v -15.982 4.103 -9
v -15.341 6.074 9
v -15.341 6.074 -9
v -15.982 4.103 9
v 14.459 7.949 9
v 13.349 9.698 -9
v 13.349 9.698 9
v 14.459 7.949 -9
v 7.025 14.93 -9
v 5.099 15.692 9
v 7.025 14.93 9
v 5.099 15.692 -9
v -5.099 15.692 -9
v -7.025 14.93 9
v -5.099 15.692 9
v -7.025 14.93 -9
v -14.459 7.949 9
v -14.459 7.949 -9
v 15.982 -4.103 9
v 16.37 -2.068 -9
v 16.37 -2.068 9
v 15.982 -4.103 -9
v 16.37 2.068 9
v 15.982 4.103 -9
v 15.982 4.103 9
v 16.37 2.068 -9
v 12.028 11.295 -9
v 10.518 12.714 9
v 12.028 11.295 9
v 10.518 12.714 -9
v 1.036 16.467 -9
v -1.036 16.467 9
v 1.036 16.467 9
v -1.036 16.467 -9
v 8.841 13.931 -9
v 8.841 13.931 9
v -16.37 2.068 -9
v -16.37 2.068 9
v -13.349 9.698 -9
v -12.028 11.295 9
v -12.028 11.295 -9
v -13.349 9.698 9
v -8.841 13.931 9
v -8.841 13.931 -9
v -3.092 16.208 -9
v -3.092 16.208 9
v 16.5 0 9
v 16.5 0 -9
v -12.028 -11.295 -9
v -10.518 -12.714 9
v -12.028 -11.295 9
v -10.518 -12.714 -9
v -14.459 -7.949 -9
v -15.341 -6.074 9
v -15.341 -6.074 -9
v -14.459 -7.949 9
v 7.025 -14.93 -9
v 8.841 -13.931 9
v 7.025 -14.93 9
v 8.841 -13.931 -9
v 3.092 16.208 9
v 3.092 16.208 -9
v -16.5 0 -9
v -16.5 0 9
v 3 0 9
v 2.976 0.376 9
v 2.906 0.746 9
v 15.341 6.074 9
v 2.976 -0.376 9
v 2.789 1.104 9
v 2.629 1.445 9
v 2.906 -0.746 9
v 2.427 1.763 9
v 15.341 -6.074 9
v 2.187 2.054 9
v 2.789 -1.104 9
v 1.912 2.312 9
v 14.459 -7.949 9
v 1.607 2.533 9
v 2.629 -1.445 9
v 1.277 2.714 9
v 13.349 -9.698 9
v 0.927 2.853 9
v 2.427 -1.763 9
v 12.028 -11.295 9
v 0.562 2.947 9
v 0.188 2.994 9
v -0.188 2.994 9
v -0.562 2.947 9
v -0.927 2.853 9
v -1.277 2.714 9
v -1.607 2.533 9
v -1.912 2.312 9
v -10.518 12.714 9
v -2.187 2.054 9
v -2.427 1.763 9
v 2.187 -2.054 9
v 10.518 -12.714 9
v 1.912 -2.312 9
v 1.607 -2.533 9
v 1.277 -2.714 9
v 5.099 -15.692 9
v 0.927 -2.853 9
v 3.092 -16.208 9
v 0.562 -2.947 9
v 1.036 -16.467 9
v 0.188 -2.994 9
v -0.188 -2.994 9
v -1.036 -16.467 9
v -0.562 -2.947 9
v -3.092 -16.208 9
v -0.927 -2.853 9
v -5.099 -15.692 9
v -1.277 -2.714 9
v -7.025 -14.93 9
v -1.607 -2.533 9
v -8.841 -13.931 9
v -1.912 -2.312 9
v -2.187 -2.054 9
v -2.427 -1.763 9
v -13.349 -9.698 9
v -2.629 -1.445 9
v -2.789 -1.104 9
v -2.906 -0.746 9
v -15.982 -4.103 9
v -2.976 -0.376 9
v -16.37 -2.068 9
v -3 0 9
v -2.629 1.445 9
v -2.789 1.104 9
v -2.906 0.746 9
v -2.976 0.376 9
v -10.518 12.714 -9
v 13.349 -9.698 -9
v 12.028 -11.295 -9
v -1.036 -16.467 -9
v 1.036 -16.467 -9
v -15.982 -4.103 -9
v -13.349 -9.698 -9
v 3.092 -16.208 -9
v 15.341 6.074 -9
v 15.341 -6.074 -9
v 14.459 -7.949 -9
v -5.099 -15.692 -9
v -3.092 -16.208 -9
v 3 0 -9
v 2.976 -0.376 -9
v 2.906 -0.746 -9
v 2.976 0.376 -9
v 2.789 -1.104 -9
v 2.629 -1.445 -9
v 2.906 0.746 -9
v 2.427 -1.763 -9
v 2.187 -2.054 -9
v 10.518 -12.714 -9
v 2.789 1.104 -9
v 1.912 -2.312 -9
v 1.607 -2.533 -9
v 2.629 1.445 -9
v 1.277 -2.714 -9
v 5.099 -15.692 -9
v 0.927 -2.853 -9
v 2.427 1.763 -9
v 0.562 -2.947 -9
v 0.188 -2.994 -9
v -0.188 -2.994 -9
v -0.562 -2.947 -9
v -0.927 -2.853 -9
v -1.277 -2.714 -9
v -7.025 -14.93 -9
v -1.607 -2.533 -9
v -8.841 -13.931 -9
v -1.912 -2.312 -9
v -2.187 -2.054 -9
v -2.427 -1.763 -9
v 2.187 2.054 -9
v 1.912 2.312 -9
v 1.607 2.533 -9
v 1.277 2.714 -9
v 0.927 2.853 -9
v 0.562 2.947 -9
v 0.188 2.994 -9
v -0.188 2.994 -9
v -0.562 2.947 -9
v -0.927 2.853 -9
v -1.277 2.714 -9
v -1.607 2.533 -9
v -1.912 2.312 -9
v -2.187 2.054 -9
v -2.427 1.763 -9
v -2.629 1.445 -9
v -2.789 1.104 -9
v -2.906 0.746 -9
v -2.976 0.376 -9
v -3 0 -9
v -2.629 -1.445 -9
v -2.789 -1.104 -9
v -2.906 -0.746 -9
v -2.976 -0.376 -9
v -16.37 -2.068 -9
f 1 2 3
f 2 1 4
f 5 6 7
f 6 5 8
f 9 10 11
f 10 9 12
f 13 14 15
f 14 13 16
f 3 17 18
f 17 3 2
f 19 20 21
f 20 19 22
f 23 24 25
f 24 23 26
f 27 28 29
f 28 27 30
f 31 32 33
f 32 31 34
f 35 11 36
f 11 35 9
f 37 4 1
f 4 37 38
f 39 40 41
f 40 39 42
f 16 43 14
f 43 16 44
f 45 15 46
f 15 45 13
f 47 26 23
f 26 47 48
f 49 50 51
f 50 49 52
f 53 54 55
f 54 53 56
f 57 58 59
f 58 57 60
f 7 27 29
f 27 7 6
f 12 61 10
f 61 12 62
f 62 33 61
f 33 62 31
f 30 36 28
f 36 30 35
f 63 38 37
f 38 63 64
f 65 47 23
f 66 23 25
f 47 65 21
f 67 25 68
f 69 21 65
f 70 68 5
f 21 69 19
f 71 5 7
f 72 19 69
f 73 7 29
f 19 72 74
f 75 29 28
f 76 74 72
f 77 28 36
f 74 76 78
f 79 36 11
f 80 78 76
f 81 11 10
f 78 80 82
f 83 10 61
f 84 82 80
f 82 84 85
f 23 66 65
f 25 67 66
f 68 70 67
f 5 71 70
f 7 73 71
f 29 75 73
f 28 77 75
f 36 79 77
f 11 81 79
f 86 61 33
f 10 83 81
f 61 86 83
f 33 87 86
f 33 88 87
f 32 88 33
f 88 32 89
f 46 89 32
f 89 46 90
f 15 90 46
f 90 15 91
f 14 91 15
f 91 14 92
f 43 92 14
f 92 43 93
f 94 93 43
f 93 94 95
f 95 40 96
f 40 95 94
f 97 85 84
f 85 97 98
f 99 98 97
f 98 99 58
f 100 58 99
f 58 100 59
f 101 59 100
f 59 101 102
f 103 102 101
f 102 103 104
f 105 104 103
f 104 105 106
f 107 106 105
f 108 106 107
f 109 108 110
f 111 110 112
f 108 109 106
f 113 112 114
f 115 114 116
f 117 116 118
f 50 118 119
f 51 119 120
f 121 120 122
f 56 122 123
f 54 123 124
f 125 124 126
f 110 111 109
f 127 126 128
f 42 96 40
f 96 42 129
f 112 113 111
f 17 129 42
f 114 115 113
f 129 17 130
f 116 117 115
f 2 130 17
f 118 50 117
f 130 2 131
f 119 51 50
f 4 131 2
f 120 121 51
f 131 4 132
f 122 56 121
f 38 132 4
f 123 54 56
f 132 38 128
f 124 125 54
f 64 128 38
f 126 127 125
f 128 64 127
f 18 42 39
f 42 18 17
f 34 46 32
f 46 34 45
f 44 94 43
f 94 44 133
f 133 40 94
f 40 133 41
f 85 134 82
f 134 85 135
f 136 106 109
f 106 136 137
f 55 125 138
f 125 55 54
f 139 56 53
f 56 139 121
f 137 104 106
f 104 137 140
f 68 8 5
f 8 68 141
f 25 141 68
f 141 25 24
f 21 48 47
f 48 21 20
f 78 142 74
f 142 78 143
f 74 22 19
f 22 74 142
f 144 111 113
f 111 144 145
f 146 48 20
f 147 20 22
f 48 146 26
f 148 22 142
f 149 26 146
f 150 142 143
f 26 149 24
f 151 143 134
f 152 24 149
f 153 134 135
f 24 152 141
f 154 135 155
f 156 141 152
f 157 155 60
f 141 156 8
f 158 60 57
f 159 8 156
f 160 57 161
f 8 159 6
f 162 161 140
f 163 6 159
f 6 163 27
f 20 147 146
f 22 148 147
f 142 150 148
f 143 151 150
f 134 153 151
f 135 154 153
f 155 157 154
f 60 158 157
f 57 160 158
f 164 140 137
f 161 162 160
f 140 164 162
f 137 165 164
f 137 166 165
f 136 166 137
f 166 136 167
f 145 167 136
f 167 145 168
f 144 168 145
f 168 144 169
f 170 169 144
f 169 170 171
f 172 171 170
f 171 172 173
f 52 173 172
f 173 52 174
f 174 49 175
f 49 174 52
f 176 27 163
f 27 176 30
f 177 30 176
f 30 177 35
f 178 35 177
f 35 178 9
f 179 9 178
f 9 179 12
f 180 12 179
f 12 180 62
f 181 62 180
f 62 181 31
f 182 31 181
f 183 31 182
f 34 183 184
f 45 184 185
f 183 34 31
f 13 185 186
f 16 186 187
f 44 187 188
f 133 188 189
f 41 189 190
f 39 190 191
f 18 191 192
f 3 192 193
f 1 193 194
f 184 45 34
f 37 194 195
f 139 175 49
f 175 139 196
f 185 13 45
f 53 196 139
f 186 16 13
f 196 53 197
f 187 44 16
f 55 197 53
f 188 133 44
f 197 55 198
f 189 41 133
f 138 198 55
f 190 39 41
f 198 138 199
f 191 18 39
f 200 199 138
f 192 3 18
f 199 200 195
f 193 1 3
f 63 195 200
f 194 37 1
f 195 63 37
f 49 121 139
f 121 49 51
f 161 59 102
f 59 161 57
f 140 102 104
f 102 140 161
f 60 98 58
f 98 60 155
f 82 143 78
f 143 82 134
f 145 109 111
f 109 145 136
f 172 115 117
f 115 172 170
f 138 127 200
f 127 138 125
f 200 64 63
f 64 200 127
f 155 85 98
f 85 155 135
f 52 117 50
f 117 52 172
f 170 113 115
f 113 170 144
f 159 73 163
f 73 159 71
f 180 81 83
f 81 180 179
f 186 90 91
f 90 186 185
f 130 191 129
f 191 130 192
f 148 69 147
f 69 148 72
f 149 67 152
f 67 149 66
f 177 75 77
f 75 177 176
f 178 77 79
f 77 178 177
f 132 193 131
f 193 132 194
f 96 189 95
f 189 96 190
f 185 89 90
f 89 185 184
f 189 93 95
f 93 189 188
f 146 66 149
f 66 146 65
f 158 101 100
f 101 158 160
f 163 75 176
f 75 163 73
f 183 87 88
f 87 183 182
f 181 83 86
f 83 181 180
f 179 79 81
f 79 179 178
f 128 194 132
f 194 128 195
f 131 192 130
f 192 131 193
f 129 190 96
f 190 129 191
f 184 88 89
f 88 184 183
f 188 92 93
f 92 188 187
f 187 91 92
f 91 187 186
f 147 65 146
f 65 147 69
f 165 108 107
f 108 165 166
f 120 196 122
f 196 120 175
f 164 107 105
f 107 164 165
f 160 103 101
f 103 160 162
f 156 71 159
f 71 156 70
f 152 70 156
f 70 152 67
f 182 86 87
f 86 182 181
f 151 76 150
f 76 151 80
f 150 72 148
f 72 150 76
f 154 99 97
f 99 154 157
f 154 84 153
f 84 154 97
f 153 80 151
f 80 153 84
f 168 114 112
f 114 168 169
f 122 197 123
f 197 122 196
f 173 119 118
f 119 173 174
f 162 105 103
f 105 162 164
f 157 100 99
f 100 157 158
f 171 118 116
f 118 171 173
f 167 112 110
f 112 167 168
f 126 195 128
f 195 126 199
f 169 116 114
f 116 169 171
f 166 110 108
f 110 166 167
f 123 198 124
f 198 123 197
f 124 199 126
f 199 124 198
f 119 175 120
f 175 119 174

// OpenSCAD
$fn = 50;


difference() {
	union() {
		translate(v = [0, 0, -9.0000000000]) {
			cylinder(h = 18, r = 16.5000000000);
		}
	}
	union() {
		translate(v = [0, 0, -100.0000000000]) {
			cylinder(h = 200, r = 3);
		}
	}
}
